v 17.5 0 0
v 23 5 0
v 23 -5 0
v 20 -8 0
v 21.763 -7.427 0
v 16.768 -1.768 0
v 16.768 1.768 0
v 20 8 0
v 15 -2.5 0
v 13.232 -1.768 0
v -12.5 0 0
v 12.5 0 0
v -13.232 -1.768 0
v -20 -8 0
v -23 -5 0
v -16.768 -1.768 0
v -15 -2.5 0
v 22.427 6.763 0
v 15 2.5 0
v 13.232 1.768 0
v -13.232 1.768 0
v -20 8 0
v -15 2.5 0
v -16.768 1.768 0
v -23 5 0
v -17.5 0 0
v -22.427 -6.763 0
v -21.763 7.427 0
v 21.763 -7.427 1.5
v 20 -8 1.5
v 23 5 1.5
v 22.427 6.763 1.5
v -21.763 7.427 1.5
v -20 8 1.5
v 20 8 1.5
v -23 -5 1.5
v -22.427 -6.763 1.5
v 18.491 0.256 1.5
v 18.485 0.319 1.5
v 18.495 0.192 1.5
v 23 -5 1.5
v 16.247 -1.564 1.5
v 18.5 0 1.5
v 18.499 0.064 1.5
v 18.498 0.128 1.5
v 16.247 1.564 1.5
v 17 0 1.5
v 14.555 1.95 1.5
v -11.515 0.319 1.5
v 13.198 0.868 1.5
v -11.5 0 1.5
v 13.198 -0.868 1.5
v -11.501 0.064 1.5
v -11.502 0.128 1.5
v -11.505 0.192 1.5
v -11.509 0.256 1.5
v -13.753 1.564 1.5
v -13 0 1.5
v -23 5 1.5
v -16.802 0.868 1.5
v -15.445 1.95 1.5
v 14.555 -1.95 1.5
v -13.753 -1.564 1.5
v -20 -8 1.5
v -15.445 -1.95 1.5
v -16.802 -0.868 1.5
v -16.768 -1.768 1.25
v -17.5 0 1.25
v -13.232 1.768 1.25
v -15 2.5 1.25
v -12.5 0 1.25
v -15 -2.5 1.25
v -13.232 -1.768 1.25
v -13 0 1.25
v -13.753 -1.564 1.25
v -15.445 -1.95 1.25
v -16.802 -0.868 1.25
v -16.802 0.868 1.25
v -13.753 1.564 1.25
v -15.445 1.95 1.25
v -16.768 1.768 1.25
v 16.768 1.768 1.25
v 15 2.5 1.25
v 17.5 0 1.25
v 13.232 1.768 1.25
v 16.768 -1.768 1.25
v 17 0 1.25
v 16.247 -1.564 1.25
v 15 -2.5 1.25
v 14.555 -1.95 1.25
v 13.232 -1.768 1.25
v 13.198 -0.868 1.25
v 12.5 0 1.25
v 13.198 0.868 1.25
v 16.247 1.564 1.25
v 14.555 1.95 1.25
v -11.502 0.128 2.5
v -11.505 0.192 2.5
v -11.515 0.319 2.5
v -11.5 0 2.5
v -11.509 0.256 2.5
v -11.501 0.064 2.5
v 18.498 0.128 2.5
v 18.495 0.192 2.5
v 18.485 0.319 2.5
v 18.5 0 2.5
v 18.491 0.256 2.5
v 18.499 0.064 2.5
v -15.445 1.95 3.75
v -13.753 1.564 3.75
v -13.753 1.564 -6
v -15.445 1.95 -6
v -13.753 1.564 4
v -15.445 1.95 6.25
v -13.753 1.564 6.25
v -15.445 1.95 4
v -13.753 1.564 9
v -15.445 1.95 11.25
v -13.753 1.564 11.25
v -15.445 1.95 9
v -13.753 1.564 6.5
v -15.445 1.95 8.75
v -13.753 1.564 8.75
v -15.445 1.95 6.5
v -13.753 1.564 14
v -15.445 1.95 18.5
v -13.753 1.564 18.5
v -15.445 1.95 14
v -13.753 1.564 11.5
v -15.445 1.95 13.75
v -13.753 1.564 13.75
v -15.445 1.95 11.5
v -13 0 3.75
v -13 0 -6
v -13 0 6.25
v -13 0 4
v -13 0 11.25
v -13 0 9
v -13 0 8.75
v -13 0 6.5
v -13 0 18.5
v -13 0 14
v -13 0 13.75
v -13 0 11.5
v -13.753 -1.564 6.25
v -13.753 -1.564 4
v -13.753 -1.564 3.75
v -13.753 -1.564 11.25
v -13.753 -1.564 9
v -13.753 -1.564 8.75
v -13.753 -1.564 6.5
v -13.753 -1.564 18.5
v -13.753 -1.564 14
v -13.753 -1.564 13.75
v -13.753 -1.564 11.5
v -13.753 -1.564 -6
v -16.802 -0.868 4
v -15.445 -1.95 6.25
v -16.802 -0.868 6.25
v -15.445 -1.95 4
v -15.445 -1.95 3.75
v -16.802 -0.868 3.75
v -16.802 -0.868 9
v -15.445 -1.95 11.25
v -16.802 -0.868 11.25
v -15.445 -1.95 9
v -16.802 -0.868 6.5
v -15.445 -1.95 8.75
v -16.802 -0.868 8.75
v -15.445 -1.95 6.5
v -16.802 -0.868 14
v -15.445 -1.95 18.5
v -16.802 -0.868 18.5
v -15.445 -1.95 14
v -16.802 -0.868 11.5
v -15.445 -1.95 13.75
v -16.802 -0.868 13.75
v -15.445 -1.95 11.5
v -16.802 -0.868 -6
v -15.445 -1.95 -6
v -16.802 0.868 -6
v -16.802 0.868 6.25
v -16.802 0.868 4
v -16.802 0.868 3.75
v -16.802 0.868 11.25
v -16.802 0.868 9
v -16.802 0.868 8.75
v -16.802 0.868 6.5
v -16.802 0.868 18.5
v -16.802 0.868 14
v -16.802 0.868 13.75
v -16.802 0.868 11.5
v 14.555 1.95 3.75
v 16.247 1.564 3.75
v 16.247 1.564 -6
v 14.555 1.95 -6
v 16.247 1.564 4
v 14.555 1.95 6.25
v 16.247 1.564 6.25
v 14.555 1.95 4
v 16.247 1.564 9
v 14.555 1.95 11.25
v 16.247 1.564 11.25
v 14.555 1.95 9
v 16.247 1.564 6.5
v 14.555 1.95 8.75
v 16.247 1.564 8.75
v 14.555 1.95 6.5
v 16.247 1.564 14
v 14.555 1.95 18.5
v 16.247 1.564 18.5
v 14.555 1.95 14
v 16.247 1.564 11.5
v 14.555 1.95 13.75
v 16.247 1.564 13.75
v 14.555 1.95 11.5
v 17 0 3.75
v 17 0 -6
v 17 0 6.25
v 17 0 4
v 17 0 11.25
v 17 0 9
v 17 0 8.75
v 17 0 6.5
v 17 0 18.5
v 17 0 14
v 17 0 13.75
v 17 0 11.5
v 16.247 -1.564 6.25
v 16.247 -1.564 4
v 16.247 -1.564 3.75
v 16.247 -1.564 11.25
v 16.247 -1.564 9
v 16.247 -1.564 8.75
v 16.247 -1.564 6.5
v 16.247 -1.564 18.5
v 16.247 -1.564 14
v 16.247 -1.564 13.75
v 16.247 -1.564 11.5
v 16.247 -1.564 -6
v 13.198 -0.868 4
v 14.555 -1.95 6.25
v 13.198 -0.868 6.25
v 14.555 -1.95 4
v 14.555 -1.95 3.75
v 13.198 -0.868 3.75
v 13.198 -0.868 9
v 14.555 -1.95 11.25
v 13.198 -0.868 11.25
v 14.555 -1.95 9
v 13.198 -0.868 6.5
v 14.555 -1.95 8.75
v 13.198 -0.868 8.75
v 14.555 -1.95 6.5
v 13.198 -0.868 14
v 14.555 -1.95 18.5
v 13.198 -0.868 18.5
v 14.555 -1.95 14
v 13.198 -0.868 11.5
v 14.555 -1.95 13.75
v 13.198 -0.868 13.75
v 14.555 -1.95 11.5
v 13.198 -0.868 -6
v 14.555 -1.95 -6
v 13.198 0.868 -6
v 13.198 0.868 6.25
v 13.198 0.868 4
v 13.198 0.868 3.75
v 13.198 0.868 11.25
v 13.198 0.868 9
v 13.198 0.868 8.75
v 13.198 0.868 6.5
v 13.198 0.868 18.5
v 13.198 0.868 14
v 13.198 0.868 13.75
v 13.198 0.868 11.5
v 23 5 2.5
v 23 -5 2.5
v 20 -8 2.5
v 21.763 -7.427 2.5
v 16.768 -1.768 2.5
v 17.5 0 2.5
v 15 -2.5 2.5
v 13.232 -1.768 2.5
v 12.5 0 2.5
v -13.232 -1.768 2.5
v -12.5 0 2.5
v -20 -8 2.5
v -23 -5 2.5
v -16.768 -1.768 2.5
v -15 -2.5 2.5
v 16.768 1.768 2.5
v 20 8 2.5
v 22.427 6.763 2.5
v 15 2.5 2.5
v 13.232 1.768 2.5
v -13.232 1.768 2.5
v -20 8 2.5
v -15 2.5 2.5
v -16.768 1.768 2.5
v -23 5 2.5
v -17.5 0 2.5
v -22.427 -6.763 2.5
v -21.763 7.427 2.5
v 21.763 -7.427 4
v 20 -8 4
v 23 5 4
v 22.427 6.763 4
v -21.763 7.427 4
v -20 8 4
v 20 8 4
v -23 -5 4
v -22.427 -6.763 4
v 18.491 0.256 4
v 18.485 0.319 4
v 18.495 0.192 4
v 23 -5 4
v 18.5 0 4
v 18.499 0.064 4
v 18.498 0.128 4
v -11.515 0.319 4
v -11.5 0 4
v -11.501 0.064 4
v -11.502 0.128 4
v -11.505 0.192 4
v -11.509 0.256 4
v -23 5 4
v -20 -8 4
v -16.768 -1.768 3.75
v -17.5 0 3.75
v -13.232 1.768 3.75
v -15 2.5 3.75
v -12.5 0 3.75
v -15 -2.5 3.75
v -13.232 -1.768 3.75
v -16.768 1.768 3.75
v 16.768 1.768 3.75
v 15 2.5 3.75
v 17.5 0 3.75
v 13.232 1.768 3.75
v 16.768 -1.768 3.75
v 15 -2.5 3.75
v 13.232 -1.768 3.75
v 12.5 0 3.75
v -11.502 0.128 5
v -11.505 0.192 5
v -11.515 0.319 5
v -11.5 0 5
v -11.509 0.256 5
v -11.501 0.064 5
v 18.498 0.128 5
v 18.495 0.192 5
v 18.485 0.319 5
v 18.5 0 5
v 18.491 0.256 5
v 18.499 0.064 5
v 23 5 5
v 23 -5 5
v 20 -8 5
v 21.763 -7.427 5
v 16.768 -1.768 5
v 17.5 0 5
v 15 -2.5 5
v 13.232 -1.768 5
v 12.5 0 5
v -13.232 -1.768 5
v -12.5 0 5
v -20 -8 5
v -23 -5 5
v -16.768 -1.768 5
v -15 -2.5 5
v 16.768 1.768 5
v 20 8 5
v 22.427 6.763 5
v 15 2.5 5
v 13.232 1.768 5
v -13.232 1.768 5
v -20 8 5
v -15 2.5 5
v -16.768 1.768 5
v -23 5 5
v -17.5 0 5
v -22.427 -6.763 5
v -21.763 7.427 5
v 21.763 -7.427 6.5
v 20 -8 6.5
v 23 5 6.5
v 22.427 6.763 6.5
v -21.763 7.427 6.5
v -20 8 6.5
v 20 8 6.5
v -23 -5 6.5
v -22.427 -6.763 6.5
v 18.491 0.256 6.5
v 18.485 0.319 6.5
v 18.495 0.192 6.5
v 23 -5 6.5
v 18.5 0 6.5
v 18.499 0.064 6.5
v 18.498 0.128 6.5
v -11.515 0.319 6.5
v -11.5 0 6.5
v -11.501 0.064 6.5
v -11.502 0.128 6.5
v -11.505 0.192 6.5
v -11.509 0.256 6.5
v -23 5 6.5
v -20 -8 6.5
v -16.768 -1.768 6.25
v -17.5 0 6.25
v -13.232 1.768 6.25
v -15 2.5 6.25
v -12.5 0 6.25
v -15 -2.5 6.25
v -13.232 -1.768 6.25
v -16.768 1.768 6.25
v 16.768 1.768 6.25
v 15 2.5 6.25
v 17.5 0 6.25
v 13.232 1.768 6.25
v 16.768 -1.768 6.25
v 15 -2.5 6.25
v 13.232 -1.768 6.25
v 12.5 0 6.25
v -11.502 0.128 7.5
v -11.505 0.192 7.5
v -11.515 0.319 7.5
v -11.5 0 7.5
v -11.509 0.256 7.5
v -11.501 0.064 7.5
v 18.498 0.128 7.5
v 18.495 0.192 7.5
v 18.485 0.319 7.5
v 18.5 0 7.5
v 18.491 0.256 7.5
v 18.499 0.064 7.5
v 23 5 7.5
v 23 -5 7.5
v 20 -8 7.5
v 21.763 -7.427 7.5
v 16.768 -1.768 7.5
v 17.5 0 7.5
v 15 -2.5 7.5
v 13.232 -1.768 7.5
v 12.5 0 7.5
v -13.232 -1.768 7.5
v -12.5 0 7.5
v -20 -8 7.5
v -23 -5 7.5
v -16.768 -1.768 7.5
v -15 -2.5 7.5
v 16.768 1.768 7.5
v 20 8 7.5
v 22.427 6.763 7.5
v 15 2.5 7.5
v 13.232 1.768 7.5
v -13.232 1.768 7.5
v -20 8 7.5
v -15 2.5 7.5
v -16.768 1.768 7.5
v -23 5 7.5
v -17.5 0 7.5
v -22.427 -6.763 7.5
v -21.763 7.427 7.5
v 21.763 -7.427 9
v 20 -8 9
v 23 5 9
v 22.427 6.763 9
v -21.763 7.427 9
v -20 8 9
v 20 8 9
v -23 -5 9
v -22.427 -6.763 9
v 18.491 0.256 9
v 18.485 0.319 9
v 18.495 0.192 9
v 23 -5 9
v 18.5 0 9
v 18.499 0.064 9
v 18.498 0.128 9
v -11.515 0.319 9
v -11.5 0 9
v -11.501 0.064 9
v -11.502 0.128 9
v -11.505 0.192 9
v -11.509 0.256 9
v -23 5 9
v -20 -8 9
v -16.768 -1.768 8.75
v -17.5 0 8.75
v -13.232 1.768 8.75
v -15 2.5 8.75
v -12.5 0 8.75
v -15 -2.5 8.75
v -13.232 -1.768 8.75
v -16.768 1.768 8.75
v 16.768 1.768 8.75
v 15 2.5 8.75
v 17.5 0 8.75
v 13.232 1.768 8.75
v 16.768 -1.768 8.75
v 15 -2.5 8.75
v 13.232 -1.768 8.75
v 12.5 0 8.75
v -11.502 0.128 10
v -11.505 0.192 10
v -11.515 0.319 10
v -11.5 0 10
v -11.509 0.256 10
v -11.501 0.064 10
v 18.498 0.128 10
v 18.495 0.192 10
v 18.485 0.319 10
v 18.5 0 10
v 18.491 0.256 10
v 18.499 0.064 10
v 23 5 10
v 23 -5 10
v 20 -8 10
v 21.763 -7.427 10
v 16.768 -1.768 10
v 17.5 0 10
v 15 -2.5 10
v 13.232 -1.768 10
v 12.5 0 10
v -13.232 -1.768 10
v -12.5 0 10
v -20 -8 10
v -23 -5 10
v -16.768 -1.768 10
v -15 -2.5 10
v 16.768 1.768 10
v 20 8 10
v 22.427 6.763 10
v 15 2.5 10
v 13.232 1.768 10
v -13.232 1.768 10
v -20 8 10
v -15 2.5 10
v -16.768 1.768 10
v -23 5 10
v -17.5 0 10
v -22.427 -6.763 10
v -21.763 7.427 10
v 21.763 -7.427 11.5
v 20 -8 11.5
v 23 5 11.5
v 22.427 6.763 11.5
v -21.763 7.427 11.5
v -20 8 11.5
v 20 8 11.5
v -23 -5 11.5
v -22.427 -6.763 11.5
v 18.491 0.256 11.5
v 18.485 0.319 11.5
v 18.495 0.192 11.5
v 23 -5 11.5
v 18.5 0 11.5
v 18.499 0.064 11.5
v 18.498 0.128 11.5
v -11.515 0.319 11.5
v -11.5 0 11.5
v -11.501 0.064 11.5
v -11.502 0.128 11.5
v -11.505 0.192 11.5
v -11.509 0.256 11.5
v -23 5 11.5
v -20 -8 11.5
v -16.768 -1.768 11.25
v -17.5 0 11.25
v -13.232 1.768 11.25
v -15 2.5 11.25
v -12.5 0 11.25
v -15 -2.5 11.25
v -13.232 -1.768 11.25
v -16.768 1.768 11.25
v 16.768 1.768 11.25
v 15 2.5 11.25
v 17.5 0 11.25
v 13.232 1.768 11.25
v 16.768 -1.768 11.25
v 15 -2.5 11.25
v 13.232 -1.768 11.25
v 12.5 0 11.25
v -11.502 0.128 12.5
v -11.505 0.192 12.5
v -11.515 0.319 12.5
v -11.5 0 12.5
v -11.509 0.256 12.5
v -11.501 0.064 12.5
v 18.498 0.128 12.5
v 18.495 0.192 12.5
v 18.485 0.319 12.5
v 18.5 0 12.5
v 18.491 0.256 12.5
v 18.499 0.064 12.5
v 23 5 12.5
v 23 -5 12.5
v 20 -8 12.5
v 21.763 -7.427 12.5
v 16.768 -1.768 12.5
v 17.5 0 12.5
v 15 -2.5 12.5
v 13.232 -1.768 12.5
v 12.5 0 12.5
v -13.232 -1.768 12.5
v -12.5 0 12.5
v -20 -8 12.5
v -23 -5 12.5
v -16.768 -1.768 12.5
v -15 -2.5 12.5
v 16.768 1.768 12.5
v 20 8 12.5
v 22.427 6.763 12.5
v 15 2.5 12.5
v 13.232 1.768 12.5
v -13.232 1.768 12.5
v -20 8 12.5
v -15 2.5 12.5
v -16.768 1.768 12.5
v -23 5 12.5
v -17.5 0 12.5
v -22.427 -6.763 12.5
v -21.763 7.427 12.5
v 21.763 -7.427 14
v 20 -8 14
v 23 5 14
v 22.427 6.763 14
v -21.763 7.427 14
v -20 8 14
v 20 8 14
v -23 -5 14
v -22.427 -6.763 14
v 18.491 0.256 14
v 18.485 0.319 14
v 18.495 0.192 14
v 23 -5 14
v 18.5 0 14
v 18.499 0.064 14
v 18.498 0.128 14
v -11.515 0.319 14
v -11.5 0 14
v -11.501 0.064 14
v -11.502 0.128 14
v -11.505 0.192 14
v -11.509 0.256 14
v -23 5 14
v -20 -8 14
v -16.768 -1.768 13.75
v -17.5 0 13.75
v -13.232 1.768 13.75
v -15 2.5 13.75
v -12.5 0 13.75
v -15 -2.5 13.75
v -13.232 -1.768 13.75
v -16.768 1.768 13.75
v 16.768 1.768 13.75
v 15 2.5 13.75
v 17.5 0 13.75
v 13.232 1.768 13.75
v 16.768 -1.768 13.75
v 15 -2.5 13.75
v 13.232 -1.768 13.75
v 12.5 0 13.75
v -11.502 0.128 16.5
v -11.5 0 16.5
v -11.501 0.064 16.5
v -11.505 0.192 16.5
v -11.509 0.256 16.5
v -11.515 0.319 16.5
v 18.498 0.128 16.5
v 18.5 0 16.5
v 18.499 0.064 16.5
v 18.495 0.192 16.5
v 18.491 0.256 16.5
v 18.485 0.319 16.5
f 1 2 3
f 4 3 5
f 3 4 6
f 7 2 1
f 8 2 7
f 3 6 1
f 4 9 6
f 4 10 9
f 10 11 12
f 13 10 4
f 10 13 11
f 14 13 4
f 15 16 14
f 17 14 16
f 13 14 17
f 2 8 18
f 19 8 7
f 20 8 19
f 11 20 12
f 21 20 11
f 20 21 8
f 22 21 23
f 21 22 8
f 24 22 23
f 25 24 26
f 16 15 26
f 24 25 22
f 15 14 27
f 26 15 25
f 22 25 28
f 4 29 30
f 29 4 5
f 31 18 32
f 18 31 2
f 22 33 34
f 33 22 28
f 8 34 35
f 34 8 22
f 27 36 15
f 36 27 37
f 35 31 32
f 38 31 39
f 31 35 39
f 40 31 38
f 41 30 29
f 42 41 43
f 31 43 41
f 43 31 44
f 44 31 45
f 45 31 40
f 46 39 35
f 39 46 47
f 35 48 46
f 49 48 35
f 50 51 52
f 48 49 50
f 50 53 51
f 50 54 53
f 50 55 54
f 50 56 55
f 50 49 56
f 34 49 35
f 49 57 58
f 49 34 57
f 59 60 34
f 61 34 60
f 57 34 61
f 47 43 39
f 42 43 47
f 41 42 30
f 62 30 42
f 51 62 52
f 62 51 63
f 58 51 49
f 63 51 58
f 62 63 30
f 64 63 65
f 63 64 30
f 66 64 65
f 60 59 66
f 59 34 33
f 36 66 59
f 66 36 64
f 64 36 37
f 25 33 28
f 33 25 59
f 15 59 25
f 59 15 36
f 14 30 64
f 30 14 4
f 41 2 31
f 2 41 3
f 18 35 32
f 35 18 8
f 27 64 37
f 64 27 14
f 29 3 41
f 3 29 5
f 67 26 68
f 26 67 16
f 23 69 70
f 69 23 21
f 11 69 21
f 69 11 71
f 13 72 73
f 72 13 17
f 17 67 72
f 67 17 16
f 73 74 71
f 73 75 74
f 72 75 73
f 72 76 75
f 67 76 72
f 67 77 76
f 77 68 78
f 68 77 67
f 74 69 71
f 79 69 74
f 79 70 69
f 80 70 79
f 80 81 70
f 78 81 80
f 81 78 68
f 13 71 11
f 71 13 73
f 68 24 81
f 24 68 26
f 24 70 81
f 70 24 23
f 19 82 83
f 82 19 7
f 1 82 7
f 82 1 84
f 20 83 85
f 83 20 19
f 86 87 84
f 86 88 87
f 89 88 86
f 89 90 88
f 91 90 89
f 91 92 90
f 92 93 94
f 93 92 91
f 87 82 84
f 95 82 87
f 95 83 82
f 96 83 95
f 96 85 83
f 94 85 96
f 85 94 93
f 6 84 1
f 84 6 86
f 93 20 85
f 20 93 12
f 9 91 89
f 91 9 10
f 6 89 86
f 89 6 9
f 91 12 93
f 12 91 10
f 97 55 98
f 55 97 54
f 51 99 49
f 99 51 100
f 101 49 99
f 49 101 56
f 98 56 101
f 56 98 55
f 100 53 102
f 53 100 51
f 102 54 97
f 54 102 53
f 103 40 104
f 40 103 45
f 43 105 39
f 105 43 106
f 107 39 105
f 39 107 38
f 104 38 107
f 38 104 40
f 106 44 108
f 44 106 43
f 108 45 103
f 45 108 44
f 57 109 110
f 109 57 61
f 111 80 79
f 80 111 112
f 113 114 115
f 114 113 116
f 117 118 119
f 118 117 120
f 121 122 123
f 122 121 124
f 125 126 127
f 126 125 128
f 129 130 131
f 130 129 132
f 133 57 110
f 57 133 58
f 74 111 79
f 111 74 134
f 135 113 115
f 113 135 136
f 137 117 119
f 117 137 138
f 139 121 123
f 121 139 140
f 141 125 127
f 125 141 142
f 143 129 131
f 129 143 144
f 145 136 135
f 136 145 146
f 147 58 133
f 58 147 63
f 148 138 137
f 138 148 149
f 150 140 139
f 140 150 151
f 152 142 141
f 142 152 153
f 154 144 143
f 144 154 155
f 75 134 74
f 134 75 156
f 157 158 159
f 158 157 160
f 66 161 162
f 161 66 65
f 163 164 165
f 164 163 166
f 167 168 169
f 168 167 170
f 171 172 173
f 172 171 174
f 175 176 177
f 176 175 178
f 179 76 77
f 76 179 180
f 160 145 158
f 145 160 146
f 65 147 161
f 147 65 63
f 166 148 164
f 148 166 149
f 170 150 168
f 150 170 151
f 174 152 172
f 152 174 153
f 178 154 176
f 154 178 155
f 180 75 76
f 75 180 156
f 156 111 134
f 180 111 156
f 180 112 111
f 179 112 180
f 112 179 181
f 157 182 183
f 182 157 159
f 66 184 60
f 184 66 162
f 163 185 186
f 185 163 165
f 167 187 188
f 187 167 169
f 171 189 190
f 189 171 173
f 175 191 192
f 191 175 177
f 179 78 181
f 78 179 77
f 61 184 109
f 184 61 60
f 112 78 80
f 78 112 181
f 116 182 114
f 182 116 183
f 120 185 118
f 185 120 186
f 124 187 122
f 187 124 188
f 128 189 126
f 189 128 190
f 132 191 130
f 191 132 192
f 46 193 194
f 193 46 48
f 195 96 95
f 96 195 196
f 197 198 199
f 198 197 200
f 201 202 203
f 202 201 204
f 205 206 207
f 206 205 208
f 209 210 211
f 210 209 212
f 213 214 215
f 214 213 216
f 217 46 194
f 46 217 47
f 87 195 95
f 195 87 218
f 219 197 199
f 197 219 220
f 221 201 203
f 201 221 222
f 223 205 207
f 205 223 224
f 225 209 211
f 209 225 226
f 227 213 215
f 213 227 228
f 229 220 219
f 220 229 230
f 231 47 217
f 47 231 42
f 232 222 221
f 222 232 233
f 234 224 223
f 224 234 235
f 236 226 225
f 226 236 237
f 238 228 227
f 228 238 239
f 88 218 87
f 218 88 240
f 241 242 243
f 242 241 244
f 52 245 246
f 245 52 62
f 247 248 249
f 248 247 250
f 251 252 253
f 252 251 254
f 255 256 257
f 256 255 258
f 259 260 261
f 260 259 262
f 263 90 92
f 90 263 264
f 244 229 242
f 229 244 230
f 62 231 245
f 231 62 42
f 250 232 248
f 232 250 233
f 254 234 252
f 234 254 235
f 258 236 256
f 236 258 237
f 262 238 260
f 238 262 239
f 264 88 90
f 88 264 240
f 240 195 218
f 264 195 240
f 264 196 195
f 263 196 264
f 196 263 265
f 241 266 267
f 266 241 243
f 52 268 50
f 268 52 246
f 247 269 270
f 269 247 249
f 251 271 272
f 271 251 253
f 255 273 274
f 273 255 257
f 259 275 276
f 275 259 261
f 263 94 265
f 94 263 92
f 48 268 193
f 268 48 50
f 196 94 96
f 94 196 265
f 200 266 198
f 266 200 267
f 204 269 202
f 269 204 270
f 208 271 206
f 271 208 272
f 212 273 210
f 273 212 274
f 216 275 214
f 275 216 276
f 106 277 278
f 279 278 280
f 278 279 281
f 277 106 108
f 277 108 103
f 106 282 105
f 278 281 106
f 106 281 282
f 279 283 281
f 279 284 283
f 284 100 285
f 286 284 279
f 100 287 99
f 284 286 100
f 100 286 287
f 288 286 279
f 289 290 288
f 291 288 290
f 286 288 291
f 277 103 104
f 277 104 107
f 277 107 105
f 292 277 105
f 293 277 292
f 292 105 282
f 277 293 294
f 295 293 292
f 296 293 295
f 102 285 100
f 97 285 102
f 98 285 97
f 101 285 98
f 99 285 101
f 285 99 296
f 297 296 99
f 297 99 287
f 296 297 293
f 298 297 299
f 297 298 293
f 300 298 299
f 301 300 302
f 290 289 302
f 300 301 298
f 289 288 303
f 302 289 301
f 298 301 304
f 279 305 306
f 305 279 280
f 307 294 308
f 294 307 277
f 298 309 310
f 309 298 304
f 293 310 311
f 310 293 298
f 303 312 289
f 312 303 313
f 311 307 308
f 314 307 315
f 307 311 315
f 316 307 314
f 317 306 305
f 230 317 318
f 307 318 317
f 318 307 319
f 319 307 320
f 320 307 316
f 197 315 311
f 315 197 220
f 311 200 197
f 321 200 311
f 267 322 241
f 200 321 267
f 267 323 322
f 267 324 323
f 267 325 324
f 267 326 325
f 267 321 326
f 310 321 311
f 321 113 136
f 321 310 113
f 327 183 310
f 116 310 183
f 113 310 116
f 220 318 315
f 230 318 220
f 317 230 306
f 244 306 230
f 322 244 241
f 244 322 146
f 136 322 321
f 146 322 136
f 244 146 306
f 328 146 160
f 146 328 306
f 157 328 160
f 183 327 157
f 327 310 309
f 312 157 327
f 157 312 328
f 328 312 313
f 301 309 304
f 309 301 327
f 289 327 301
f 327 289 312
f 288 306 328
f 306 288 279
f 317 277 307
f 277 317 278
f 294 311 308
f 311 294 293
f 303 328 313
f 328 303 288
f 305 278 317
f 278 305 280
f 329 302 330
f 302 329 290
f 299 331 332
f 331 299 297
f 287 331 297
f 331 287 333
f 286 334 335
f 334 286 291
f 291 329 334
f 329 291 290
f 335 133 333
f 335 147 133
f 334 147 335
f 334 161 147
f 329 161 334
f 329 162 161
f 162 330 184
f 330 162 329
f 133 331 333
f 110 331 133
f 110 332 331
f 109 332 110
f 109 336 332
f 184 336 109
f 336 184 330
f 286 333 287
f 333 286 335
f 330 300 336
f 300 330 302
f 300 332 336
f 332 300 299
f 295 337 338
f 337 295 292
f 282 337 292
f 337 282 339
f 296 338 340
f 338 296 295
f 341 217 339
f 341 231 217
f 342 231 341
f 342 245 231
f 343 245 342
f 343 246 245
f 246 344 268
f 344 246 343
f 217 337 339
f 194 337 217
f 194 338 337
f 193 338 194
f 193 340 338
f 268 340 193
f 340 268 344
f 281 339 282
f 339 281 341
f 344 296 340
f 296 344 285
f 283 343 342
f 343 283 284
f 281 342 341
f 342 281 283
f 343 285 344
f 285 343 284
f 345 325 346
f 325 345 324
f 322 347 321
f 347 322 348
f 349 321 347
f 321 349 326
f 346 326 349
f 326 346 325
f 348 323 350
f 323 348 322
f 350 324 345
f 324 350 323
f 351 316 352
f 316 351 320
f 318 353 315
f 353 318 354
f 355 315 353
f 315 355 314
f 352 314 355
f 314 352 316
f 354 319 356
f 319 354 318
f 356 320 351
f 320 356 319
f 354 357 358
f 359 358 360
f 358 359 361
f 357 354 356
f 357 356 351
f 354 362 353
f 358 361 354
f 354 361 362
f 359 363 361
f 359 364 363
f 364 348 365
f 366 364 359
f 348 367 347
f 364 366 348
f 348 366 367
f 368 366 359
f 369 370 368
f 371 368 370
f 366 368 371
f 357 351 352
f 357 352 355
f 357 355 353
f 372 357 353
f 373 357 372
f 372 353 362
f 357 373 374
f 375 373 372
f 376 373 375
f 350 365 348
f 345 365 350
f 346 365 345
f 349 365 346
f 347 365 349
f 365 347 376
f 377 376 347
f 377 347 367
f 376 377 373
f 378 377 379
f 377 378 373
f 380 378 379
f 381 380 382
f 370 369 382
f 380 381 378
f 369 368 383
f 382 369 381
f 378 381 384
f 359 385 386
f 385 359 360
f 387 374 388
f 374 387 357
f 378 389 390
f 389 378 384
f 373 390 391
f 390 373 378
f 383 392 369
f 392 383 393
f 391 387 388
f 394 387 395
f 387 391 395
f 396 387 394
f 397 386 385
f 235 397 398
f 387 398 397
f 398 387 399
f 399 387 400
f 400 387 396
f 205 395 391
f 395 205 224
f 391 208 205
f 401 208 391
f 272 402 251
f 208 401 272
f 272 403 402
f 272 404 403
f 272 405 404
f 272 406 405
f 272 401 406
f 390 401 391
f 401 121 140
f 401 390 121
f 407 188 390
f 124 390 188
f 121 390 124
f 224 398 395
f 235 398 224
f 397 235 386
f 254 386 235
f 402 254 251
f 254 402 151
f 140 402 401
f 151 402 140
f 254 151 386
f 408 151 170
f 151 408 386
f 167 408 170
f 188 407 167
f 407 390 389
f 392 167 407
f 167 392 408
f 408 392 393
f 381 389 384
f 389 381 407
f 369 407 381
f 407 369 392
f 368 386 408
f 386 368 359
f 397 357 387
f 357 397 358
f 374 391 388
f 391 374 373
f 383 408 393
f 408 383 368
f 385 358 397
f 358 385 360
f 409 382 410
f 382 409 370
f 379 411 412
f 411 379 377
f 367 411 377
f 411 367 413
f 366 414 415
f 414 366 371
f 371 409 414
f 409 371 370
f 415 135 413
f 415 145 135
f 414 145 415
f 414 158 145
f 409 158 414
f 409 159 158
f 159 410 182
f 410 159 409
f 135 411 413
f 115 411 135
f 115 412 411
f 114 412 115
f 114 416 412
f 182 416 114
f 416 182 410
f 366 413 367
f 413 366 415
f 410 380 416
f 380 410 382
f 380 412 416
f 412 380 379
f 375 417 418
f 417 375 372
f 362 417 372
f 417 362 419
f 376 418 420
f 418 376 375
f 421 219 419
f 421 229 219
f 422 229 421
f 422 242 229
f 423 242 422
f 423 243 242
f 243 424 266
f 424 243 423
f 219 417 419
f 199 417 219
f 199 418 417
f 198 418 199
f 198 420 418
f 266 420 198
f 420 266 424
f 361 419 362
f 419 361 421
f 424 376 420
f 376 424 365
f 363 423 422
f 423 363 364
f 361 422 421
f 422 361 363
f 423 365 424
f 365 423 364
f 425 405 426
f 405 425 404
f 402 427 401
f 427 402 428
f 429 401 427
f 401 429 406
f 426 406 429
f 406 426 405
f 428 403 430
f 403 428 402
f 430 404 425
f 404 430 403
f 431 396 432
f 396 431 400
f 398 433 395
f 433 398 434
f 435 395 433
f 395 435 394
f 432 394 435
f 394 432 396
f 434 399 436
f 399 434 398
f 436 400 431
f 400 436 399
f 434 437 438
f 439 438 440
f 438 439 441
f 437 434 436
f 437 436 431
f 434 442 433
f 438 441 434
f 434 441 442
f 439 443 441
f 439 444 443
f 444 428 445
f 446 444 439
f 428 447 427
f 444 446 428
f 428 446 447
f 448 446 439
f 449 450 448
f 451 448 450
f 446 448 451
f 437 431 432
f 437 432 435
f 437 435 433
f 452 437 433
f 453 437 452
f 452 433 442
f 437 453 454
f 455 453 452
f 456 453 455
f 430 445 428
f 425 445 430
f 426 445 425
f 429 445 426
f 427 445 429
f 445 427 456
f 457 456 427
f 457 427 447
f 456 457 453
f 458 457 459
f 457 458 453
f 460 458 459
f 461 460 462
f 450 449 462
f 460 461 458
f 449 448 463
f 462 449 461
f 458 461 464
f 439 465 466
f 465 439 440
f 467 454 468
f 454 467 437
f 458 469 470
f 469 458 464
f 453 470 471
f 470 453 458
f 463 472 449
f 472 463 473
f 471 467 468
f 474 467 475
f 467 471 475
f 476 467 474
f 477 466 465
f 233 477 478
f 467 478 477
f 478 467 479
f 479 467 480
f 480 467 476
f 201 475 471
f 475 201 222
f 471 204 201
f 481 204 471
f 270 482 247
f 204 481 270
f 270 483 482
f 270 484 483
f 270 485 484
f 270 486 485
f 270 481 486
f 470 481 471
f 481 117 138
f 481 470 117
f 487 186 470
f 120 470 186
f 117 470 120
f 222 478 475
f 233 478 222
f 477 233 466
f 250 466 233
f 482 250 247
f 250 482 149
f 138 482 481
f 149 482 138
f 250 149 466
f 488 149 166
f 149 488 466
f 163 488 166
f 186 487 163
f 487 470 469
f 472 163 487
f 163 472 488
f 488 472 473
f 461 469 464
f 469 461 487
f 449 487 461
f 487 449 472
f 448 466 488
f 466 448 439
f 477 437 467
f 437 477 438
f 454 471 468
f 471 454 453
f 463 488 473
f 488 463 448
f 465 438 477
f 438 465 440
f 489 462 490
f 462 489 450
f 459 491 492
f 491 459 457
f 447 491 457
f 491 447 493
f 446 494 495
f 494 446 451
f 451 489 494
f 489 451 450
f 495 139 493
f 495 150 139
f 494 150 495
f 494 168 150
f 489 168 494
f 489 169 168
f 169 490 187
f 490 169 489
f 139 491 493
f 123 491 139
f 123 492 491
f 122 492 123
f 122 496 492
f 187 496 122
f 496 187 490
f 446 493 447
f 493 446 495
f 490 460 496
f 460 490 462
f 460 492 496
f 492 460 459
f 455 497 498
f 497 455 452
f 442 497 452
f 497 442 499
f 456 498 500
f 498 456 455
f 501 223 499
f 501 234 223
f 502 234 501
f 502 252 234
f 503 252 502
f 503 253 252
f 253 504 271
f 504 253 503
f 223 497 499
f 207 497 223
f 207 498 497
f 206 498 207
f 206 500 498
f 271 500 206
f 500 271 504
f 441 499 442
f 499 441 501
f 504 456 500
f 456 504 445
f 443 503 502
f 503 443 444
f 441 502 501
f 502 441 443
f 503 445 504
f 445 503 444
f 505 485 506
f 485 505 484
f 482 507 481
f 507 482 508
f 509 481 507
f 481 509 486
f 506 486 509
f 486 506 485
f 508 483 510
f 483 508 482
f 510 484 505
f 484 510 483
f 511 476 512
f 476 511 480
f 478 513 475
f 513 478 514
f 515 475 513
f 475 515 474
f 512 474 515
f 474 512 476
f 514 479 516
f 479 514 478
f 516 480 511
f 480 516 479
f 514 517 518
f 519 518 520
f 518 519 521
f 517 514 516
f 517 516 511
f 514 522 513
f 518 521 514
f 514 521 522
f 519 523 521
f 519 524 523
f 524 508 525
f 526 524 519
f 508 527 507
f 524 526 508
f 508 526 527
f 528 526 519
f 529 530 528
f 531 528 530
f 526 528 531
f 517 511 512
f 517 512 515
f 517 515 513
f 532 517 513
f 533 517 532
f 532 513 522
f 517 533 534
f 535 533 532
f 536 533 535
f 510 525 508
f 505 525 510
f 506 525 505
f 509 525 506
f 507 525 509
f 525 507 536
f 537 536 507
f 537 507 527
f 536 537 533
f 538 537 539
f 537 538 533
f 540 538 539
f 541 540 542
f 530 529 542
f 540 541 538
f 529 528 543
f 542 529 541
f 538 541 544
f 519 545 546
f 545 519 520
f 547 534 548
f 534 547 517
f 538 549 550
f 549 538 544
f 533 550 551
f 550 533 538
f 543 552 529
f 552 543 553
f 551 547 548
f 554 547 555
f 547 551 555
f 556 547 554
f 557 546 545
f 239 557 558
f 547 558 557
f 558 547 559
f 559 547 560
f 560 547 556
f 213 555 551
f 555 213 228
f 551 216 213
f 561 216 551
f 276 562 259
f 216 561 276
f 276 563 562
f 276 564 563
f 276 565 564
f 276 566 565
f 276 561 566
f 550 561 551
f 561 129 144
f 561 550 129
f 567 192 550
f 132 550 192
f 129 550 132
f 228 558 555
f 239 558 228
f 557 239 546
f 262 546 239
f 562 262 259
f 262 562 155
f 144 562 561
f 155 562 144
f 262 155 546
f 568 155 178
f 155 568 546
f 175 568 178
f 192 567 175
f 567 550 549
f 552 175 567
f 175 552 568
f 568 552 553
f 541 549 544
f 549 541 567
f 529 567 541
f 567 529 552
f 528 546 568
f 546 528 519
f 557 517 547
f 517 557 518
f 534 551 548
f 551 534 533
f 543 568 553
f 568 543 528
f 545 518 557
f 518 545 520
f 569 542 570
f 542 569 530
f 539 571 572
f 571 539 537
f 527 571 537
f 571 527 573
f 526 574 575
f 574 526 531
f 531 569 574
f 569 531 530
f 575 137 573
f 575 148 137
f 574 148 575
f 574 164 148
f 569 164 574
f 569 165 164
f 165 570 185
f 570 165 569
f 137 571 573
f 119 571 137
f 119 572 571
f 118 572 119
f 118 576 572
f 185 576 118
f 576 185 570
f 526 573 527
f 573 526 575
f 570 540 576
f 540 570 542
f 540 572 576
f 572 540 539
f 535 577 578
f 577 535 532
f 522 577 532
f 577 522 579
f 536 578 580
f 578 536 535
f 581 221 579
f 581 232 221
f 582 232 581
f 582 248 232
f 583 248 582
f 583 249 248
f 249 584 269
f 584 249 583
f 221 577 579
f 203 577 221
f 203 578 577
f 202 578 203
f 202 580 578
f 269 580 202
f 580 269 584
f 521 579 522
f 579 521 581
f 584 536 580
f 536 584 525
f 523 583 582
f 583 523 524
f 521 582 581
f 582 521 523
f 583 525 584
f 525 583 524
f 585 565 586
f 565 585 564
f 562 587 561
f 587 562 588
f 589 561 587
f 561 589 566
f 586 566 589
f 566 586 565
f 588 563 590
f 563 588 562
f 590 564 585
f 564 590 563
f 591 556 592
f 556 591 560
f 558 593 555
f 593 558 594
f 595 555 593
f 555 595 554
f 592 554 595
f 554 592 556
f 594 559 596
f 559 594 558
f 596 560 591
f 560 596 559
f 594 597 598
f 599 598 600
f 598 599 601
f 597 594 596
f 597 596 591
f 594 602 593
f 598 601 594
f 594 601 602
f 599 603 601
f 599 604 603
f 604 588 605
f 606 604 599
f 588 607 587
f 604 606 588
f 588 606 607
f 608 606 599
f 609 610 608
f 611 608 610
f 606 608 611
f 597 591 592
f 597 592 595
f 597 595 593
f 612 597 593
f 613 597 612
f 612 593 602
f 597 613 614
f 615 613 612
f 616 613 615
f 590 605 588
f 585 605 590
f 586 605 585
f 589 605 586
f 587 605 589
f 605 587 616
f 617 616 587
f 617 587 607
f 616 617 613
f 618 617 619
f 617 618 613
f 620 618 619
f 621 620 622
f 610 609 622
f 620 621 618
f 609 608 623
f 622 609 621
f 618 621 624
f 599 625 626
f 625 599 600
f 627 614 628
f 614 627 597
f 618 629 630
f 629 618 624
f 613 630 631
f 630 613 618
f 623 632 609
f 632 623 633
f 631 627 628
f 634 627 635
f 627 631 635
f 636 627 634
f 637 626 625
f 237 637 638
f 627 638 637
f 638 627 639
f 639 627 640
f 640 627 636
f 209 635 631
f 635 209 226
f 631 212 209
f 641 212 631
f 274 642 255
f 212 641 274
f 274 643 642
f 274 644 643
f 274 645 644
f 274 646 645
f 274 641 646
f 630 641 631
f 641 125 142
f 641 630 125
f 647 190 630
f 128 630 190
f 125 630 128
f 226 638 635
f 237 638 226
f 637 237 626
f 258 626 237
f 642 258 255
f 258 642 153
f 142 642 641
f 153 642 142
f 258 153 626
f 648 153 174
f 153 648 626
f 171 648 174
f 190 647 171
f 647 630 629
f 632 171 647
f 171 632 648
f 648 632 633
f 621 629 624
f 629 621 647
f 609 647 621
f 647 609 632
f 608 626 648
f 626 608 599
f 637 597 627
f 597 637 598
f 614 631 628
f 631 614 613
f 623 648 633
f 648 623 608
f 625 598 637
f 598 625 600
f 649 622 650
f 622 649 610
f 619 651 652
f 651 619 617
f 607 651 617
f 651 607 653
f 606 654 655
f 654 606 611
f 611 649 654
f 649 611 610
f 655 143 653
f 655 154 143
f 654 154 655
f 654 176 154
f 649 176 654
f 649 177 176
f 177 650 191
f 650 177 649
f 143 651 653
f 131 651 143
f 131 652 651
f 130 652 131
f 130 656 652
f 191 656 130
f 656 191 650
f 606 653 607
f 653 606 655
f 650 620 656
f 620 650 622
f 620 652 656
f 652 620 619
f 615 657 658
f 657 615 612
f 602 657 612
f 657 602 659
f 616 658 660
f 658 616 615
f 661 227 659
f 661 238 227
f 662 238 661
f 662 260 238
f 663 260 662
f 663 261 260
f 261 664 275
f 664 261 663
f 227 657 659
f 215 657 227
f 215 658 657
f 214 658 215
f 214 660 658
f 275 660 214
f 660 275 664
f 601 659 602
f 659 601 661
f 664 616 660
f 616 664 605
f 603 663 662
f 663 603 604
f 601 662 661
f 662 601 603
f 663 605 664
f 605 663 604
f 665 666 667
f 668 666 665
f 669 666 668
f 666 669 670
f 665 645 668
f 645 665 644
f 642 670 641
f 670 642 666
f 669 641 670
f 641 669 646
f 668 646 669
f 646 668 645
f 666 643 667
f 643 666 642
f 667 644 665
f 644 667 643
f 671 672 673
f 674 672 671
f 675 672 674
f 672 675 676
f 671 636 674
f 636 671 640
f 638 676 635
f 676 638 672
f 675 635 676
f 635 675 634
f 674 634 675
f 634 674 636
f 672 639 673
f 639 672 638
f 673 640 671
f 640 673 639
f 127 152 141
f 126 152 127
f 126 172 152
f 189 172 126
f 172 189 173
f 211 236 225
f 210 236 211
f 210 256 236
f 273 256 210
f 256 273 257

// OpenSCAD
// Parameters for the link plate
link_plate_length = 40; // Length of the link plate
link_plate_width = 10;  // Width of the link plate
link_plate_thickness = 1.5; // Reduced thickness of the link plate
hole_diameter = 5; // Diameter of the holes
hole_spacing = 30; // Distance between the centers of the two holes
curvature_radius = 3; // Increased curvature for the edges

// Parameters for the bolt
bolt_diameter = 4; // Diameter of the bolt
bolt_length = 12; // Reduced length of the bolt

// Parameters for the nut
nut_diameter = 7; // Diameter of the nut
nut_thickness = 3; // Thickness of the nut
nut_offset = 0.5; // Adjusted position closer to the link plate

// Function to create a link plate
module link_plate() {
    difference() {
        // Base plate
        linear_extrude(height = link_plate_thickness) {
            offset(r = curvature_radius) // Increased curvature for the edges
                square([link_plate_length, link_plate_width], center = true);
        }
        // Holes
        translate([-hole_spacing / 2, 0, 0])
            cylinder(h = link_plate_thickness + 1, d = hole_diameter, center = true);
        translate([hole_spacing / 2, 0, 0])
            cylinder(h = link_plate_thickness + 1, d = hole_diameter, center = true);
    }
}

// Function to create a bolt
module bolt() {
    cylinder(h = bolt_length, d = bolt_diameter, center = false);
}

// Function to create a nut
module nut() {
    difference() {
        // Hexagonal prism
        linear_extrude(height = nut_thickness)
            polygon(points = [
                [cos(0) * nut_diameter / 2, sin(0) * nut_diameter / 2],
                [cos(PI / 3) * nut_diameter / 2, sin(PI / 3) * nut_diameter / 2],
                [cos(2 * PI / 3) * nut_diameter / 2, sin(2 * PI / 3) * nut_diameter / 2],
                [cos(PI) * nut_diameter / 2, sin(PI) * nut_diameter / 2],
                [cos(4 * PI / 3) * nut_diameter / 2, sin(4 * PI / 3) * nut_diameter / 2],
                [cos(5 * PI / 3) * nut_diameter / 2, sin(5 * PI / 3) * nut_diameter / 2]
            ]);
        // Internal threading (hole)
        translate([0, 0, -1])
            cylinder(h = nut_thickness + 2, d = bolt_diameter, center = false);
    }
}

// Assembly of the flexible coupling
module flexible_coupling() {
    for (i = [0:5]) {
        translate([0, 0, i * (link_plate_thickness + 1)]) {
            link_plate();
            // Add bolts and nuts
            translate([-hole_spacing / 2, 0, -bolt_length / 2])
                bolt();
            translate([hole_spacing / 2, 0, -bolt_length / 2])
                bolt();
            translate([-hole_spacing / 2, 0, link_plate_thickness - nut_offset])
                nut();
            translate([hole_spacing / 2, 0, link_plate_thickness - nut_offset])
                nut();
        }
    }
}

// Render the flexible coupling
flexible_coupling();
